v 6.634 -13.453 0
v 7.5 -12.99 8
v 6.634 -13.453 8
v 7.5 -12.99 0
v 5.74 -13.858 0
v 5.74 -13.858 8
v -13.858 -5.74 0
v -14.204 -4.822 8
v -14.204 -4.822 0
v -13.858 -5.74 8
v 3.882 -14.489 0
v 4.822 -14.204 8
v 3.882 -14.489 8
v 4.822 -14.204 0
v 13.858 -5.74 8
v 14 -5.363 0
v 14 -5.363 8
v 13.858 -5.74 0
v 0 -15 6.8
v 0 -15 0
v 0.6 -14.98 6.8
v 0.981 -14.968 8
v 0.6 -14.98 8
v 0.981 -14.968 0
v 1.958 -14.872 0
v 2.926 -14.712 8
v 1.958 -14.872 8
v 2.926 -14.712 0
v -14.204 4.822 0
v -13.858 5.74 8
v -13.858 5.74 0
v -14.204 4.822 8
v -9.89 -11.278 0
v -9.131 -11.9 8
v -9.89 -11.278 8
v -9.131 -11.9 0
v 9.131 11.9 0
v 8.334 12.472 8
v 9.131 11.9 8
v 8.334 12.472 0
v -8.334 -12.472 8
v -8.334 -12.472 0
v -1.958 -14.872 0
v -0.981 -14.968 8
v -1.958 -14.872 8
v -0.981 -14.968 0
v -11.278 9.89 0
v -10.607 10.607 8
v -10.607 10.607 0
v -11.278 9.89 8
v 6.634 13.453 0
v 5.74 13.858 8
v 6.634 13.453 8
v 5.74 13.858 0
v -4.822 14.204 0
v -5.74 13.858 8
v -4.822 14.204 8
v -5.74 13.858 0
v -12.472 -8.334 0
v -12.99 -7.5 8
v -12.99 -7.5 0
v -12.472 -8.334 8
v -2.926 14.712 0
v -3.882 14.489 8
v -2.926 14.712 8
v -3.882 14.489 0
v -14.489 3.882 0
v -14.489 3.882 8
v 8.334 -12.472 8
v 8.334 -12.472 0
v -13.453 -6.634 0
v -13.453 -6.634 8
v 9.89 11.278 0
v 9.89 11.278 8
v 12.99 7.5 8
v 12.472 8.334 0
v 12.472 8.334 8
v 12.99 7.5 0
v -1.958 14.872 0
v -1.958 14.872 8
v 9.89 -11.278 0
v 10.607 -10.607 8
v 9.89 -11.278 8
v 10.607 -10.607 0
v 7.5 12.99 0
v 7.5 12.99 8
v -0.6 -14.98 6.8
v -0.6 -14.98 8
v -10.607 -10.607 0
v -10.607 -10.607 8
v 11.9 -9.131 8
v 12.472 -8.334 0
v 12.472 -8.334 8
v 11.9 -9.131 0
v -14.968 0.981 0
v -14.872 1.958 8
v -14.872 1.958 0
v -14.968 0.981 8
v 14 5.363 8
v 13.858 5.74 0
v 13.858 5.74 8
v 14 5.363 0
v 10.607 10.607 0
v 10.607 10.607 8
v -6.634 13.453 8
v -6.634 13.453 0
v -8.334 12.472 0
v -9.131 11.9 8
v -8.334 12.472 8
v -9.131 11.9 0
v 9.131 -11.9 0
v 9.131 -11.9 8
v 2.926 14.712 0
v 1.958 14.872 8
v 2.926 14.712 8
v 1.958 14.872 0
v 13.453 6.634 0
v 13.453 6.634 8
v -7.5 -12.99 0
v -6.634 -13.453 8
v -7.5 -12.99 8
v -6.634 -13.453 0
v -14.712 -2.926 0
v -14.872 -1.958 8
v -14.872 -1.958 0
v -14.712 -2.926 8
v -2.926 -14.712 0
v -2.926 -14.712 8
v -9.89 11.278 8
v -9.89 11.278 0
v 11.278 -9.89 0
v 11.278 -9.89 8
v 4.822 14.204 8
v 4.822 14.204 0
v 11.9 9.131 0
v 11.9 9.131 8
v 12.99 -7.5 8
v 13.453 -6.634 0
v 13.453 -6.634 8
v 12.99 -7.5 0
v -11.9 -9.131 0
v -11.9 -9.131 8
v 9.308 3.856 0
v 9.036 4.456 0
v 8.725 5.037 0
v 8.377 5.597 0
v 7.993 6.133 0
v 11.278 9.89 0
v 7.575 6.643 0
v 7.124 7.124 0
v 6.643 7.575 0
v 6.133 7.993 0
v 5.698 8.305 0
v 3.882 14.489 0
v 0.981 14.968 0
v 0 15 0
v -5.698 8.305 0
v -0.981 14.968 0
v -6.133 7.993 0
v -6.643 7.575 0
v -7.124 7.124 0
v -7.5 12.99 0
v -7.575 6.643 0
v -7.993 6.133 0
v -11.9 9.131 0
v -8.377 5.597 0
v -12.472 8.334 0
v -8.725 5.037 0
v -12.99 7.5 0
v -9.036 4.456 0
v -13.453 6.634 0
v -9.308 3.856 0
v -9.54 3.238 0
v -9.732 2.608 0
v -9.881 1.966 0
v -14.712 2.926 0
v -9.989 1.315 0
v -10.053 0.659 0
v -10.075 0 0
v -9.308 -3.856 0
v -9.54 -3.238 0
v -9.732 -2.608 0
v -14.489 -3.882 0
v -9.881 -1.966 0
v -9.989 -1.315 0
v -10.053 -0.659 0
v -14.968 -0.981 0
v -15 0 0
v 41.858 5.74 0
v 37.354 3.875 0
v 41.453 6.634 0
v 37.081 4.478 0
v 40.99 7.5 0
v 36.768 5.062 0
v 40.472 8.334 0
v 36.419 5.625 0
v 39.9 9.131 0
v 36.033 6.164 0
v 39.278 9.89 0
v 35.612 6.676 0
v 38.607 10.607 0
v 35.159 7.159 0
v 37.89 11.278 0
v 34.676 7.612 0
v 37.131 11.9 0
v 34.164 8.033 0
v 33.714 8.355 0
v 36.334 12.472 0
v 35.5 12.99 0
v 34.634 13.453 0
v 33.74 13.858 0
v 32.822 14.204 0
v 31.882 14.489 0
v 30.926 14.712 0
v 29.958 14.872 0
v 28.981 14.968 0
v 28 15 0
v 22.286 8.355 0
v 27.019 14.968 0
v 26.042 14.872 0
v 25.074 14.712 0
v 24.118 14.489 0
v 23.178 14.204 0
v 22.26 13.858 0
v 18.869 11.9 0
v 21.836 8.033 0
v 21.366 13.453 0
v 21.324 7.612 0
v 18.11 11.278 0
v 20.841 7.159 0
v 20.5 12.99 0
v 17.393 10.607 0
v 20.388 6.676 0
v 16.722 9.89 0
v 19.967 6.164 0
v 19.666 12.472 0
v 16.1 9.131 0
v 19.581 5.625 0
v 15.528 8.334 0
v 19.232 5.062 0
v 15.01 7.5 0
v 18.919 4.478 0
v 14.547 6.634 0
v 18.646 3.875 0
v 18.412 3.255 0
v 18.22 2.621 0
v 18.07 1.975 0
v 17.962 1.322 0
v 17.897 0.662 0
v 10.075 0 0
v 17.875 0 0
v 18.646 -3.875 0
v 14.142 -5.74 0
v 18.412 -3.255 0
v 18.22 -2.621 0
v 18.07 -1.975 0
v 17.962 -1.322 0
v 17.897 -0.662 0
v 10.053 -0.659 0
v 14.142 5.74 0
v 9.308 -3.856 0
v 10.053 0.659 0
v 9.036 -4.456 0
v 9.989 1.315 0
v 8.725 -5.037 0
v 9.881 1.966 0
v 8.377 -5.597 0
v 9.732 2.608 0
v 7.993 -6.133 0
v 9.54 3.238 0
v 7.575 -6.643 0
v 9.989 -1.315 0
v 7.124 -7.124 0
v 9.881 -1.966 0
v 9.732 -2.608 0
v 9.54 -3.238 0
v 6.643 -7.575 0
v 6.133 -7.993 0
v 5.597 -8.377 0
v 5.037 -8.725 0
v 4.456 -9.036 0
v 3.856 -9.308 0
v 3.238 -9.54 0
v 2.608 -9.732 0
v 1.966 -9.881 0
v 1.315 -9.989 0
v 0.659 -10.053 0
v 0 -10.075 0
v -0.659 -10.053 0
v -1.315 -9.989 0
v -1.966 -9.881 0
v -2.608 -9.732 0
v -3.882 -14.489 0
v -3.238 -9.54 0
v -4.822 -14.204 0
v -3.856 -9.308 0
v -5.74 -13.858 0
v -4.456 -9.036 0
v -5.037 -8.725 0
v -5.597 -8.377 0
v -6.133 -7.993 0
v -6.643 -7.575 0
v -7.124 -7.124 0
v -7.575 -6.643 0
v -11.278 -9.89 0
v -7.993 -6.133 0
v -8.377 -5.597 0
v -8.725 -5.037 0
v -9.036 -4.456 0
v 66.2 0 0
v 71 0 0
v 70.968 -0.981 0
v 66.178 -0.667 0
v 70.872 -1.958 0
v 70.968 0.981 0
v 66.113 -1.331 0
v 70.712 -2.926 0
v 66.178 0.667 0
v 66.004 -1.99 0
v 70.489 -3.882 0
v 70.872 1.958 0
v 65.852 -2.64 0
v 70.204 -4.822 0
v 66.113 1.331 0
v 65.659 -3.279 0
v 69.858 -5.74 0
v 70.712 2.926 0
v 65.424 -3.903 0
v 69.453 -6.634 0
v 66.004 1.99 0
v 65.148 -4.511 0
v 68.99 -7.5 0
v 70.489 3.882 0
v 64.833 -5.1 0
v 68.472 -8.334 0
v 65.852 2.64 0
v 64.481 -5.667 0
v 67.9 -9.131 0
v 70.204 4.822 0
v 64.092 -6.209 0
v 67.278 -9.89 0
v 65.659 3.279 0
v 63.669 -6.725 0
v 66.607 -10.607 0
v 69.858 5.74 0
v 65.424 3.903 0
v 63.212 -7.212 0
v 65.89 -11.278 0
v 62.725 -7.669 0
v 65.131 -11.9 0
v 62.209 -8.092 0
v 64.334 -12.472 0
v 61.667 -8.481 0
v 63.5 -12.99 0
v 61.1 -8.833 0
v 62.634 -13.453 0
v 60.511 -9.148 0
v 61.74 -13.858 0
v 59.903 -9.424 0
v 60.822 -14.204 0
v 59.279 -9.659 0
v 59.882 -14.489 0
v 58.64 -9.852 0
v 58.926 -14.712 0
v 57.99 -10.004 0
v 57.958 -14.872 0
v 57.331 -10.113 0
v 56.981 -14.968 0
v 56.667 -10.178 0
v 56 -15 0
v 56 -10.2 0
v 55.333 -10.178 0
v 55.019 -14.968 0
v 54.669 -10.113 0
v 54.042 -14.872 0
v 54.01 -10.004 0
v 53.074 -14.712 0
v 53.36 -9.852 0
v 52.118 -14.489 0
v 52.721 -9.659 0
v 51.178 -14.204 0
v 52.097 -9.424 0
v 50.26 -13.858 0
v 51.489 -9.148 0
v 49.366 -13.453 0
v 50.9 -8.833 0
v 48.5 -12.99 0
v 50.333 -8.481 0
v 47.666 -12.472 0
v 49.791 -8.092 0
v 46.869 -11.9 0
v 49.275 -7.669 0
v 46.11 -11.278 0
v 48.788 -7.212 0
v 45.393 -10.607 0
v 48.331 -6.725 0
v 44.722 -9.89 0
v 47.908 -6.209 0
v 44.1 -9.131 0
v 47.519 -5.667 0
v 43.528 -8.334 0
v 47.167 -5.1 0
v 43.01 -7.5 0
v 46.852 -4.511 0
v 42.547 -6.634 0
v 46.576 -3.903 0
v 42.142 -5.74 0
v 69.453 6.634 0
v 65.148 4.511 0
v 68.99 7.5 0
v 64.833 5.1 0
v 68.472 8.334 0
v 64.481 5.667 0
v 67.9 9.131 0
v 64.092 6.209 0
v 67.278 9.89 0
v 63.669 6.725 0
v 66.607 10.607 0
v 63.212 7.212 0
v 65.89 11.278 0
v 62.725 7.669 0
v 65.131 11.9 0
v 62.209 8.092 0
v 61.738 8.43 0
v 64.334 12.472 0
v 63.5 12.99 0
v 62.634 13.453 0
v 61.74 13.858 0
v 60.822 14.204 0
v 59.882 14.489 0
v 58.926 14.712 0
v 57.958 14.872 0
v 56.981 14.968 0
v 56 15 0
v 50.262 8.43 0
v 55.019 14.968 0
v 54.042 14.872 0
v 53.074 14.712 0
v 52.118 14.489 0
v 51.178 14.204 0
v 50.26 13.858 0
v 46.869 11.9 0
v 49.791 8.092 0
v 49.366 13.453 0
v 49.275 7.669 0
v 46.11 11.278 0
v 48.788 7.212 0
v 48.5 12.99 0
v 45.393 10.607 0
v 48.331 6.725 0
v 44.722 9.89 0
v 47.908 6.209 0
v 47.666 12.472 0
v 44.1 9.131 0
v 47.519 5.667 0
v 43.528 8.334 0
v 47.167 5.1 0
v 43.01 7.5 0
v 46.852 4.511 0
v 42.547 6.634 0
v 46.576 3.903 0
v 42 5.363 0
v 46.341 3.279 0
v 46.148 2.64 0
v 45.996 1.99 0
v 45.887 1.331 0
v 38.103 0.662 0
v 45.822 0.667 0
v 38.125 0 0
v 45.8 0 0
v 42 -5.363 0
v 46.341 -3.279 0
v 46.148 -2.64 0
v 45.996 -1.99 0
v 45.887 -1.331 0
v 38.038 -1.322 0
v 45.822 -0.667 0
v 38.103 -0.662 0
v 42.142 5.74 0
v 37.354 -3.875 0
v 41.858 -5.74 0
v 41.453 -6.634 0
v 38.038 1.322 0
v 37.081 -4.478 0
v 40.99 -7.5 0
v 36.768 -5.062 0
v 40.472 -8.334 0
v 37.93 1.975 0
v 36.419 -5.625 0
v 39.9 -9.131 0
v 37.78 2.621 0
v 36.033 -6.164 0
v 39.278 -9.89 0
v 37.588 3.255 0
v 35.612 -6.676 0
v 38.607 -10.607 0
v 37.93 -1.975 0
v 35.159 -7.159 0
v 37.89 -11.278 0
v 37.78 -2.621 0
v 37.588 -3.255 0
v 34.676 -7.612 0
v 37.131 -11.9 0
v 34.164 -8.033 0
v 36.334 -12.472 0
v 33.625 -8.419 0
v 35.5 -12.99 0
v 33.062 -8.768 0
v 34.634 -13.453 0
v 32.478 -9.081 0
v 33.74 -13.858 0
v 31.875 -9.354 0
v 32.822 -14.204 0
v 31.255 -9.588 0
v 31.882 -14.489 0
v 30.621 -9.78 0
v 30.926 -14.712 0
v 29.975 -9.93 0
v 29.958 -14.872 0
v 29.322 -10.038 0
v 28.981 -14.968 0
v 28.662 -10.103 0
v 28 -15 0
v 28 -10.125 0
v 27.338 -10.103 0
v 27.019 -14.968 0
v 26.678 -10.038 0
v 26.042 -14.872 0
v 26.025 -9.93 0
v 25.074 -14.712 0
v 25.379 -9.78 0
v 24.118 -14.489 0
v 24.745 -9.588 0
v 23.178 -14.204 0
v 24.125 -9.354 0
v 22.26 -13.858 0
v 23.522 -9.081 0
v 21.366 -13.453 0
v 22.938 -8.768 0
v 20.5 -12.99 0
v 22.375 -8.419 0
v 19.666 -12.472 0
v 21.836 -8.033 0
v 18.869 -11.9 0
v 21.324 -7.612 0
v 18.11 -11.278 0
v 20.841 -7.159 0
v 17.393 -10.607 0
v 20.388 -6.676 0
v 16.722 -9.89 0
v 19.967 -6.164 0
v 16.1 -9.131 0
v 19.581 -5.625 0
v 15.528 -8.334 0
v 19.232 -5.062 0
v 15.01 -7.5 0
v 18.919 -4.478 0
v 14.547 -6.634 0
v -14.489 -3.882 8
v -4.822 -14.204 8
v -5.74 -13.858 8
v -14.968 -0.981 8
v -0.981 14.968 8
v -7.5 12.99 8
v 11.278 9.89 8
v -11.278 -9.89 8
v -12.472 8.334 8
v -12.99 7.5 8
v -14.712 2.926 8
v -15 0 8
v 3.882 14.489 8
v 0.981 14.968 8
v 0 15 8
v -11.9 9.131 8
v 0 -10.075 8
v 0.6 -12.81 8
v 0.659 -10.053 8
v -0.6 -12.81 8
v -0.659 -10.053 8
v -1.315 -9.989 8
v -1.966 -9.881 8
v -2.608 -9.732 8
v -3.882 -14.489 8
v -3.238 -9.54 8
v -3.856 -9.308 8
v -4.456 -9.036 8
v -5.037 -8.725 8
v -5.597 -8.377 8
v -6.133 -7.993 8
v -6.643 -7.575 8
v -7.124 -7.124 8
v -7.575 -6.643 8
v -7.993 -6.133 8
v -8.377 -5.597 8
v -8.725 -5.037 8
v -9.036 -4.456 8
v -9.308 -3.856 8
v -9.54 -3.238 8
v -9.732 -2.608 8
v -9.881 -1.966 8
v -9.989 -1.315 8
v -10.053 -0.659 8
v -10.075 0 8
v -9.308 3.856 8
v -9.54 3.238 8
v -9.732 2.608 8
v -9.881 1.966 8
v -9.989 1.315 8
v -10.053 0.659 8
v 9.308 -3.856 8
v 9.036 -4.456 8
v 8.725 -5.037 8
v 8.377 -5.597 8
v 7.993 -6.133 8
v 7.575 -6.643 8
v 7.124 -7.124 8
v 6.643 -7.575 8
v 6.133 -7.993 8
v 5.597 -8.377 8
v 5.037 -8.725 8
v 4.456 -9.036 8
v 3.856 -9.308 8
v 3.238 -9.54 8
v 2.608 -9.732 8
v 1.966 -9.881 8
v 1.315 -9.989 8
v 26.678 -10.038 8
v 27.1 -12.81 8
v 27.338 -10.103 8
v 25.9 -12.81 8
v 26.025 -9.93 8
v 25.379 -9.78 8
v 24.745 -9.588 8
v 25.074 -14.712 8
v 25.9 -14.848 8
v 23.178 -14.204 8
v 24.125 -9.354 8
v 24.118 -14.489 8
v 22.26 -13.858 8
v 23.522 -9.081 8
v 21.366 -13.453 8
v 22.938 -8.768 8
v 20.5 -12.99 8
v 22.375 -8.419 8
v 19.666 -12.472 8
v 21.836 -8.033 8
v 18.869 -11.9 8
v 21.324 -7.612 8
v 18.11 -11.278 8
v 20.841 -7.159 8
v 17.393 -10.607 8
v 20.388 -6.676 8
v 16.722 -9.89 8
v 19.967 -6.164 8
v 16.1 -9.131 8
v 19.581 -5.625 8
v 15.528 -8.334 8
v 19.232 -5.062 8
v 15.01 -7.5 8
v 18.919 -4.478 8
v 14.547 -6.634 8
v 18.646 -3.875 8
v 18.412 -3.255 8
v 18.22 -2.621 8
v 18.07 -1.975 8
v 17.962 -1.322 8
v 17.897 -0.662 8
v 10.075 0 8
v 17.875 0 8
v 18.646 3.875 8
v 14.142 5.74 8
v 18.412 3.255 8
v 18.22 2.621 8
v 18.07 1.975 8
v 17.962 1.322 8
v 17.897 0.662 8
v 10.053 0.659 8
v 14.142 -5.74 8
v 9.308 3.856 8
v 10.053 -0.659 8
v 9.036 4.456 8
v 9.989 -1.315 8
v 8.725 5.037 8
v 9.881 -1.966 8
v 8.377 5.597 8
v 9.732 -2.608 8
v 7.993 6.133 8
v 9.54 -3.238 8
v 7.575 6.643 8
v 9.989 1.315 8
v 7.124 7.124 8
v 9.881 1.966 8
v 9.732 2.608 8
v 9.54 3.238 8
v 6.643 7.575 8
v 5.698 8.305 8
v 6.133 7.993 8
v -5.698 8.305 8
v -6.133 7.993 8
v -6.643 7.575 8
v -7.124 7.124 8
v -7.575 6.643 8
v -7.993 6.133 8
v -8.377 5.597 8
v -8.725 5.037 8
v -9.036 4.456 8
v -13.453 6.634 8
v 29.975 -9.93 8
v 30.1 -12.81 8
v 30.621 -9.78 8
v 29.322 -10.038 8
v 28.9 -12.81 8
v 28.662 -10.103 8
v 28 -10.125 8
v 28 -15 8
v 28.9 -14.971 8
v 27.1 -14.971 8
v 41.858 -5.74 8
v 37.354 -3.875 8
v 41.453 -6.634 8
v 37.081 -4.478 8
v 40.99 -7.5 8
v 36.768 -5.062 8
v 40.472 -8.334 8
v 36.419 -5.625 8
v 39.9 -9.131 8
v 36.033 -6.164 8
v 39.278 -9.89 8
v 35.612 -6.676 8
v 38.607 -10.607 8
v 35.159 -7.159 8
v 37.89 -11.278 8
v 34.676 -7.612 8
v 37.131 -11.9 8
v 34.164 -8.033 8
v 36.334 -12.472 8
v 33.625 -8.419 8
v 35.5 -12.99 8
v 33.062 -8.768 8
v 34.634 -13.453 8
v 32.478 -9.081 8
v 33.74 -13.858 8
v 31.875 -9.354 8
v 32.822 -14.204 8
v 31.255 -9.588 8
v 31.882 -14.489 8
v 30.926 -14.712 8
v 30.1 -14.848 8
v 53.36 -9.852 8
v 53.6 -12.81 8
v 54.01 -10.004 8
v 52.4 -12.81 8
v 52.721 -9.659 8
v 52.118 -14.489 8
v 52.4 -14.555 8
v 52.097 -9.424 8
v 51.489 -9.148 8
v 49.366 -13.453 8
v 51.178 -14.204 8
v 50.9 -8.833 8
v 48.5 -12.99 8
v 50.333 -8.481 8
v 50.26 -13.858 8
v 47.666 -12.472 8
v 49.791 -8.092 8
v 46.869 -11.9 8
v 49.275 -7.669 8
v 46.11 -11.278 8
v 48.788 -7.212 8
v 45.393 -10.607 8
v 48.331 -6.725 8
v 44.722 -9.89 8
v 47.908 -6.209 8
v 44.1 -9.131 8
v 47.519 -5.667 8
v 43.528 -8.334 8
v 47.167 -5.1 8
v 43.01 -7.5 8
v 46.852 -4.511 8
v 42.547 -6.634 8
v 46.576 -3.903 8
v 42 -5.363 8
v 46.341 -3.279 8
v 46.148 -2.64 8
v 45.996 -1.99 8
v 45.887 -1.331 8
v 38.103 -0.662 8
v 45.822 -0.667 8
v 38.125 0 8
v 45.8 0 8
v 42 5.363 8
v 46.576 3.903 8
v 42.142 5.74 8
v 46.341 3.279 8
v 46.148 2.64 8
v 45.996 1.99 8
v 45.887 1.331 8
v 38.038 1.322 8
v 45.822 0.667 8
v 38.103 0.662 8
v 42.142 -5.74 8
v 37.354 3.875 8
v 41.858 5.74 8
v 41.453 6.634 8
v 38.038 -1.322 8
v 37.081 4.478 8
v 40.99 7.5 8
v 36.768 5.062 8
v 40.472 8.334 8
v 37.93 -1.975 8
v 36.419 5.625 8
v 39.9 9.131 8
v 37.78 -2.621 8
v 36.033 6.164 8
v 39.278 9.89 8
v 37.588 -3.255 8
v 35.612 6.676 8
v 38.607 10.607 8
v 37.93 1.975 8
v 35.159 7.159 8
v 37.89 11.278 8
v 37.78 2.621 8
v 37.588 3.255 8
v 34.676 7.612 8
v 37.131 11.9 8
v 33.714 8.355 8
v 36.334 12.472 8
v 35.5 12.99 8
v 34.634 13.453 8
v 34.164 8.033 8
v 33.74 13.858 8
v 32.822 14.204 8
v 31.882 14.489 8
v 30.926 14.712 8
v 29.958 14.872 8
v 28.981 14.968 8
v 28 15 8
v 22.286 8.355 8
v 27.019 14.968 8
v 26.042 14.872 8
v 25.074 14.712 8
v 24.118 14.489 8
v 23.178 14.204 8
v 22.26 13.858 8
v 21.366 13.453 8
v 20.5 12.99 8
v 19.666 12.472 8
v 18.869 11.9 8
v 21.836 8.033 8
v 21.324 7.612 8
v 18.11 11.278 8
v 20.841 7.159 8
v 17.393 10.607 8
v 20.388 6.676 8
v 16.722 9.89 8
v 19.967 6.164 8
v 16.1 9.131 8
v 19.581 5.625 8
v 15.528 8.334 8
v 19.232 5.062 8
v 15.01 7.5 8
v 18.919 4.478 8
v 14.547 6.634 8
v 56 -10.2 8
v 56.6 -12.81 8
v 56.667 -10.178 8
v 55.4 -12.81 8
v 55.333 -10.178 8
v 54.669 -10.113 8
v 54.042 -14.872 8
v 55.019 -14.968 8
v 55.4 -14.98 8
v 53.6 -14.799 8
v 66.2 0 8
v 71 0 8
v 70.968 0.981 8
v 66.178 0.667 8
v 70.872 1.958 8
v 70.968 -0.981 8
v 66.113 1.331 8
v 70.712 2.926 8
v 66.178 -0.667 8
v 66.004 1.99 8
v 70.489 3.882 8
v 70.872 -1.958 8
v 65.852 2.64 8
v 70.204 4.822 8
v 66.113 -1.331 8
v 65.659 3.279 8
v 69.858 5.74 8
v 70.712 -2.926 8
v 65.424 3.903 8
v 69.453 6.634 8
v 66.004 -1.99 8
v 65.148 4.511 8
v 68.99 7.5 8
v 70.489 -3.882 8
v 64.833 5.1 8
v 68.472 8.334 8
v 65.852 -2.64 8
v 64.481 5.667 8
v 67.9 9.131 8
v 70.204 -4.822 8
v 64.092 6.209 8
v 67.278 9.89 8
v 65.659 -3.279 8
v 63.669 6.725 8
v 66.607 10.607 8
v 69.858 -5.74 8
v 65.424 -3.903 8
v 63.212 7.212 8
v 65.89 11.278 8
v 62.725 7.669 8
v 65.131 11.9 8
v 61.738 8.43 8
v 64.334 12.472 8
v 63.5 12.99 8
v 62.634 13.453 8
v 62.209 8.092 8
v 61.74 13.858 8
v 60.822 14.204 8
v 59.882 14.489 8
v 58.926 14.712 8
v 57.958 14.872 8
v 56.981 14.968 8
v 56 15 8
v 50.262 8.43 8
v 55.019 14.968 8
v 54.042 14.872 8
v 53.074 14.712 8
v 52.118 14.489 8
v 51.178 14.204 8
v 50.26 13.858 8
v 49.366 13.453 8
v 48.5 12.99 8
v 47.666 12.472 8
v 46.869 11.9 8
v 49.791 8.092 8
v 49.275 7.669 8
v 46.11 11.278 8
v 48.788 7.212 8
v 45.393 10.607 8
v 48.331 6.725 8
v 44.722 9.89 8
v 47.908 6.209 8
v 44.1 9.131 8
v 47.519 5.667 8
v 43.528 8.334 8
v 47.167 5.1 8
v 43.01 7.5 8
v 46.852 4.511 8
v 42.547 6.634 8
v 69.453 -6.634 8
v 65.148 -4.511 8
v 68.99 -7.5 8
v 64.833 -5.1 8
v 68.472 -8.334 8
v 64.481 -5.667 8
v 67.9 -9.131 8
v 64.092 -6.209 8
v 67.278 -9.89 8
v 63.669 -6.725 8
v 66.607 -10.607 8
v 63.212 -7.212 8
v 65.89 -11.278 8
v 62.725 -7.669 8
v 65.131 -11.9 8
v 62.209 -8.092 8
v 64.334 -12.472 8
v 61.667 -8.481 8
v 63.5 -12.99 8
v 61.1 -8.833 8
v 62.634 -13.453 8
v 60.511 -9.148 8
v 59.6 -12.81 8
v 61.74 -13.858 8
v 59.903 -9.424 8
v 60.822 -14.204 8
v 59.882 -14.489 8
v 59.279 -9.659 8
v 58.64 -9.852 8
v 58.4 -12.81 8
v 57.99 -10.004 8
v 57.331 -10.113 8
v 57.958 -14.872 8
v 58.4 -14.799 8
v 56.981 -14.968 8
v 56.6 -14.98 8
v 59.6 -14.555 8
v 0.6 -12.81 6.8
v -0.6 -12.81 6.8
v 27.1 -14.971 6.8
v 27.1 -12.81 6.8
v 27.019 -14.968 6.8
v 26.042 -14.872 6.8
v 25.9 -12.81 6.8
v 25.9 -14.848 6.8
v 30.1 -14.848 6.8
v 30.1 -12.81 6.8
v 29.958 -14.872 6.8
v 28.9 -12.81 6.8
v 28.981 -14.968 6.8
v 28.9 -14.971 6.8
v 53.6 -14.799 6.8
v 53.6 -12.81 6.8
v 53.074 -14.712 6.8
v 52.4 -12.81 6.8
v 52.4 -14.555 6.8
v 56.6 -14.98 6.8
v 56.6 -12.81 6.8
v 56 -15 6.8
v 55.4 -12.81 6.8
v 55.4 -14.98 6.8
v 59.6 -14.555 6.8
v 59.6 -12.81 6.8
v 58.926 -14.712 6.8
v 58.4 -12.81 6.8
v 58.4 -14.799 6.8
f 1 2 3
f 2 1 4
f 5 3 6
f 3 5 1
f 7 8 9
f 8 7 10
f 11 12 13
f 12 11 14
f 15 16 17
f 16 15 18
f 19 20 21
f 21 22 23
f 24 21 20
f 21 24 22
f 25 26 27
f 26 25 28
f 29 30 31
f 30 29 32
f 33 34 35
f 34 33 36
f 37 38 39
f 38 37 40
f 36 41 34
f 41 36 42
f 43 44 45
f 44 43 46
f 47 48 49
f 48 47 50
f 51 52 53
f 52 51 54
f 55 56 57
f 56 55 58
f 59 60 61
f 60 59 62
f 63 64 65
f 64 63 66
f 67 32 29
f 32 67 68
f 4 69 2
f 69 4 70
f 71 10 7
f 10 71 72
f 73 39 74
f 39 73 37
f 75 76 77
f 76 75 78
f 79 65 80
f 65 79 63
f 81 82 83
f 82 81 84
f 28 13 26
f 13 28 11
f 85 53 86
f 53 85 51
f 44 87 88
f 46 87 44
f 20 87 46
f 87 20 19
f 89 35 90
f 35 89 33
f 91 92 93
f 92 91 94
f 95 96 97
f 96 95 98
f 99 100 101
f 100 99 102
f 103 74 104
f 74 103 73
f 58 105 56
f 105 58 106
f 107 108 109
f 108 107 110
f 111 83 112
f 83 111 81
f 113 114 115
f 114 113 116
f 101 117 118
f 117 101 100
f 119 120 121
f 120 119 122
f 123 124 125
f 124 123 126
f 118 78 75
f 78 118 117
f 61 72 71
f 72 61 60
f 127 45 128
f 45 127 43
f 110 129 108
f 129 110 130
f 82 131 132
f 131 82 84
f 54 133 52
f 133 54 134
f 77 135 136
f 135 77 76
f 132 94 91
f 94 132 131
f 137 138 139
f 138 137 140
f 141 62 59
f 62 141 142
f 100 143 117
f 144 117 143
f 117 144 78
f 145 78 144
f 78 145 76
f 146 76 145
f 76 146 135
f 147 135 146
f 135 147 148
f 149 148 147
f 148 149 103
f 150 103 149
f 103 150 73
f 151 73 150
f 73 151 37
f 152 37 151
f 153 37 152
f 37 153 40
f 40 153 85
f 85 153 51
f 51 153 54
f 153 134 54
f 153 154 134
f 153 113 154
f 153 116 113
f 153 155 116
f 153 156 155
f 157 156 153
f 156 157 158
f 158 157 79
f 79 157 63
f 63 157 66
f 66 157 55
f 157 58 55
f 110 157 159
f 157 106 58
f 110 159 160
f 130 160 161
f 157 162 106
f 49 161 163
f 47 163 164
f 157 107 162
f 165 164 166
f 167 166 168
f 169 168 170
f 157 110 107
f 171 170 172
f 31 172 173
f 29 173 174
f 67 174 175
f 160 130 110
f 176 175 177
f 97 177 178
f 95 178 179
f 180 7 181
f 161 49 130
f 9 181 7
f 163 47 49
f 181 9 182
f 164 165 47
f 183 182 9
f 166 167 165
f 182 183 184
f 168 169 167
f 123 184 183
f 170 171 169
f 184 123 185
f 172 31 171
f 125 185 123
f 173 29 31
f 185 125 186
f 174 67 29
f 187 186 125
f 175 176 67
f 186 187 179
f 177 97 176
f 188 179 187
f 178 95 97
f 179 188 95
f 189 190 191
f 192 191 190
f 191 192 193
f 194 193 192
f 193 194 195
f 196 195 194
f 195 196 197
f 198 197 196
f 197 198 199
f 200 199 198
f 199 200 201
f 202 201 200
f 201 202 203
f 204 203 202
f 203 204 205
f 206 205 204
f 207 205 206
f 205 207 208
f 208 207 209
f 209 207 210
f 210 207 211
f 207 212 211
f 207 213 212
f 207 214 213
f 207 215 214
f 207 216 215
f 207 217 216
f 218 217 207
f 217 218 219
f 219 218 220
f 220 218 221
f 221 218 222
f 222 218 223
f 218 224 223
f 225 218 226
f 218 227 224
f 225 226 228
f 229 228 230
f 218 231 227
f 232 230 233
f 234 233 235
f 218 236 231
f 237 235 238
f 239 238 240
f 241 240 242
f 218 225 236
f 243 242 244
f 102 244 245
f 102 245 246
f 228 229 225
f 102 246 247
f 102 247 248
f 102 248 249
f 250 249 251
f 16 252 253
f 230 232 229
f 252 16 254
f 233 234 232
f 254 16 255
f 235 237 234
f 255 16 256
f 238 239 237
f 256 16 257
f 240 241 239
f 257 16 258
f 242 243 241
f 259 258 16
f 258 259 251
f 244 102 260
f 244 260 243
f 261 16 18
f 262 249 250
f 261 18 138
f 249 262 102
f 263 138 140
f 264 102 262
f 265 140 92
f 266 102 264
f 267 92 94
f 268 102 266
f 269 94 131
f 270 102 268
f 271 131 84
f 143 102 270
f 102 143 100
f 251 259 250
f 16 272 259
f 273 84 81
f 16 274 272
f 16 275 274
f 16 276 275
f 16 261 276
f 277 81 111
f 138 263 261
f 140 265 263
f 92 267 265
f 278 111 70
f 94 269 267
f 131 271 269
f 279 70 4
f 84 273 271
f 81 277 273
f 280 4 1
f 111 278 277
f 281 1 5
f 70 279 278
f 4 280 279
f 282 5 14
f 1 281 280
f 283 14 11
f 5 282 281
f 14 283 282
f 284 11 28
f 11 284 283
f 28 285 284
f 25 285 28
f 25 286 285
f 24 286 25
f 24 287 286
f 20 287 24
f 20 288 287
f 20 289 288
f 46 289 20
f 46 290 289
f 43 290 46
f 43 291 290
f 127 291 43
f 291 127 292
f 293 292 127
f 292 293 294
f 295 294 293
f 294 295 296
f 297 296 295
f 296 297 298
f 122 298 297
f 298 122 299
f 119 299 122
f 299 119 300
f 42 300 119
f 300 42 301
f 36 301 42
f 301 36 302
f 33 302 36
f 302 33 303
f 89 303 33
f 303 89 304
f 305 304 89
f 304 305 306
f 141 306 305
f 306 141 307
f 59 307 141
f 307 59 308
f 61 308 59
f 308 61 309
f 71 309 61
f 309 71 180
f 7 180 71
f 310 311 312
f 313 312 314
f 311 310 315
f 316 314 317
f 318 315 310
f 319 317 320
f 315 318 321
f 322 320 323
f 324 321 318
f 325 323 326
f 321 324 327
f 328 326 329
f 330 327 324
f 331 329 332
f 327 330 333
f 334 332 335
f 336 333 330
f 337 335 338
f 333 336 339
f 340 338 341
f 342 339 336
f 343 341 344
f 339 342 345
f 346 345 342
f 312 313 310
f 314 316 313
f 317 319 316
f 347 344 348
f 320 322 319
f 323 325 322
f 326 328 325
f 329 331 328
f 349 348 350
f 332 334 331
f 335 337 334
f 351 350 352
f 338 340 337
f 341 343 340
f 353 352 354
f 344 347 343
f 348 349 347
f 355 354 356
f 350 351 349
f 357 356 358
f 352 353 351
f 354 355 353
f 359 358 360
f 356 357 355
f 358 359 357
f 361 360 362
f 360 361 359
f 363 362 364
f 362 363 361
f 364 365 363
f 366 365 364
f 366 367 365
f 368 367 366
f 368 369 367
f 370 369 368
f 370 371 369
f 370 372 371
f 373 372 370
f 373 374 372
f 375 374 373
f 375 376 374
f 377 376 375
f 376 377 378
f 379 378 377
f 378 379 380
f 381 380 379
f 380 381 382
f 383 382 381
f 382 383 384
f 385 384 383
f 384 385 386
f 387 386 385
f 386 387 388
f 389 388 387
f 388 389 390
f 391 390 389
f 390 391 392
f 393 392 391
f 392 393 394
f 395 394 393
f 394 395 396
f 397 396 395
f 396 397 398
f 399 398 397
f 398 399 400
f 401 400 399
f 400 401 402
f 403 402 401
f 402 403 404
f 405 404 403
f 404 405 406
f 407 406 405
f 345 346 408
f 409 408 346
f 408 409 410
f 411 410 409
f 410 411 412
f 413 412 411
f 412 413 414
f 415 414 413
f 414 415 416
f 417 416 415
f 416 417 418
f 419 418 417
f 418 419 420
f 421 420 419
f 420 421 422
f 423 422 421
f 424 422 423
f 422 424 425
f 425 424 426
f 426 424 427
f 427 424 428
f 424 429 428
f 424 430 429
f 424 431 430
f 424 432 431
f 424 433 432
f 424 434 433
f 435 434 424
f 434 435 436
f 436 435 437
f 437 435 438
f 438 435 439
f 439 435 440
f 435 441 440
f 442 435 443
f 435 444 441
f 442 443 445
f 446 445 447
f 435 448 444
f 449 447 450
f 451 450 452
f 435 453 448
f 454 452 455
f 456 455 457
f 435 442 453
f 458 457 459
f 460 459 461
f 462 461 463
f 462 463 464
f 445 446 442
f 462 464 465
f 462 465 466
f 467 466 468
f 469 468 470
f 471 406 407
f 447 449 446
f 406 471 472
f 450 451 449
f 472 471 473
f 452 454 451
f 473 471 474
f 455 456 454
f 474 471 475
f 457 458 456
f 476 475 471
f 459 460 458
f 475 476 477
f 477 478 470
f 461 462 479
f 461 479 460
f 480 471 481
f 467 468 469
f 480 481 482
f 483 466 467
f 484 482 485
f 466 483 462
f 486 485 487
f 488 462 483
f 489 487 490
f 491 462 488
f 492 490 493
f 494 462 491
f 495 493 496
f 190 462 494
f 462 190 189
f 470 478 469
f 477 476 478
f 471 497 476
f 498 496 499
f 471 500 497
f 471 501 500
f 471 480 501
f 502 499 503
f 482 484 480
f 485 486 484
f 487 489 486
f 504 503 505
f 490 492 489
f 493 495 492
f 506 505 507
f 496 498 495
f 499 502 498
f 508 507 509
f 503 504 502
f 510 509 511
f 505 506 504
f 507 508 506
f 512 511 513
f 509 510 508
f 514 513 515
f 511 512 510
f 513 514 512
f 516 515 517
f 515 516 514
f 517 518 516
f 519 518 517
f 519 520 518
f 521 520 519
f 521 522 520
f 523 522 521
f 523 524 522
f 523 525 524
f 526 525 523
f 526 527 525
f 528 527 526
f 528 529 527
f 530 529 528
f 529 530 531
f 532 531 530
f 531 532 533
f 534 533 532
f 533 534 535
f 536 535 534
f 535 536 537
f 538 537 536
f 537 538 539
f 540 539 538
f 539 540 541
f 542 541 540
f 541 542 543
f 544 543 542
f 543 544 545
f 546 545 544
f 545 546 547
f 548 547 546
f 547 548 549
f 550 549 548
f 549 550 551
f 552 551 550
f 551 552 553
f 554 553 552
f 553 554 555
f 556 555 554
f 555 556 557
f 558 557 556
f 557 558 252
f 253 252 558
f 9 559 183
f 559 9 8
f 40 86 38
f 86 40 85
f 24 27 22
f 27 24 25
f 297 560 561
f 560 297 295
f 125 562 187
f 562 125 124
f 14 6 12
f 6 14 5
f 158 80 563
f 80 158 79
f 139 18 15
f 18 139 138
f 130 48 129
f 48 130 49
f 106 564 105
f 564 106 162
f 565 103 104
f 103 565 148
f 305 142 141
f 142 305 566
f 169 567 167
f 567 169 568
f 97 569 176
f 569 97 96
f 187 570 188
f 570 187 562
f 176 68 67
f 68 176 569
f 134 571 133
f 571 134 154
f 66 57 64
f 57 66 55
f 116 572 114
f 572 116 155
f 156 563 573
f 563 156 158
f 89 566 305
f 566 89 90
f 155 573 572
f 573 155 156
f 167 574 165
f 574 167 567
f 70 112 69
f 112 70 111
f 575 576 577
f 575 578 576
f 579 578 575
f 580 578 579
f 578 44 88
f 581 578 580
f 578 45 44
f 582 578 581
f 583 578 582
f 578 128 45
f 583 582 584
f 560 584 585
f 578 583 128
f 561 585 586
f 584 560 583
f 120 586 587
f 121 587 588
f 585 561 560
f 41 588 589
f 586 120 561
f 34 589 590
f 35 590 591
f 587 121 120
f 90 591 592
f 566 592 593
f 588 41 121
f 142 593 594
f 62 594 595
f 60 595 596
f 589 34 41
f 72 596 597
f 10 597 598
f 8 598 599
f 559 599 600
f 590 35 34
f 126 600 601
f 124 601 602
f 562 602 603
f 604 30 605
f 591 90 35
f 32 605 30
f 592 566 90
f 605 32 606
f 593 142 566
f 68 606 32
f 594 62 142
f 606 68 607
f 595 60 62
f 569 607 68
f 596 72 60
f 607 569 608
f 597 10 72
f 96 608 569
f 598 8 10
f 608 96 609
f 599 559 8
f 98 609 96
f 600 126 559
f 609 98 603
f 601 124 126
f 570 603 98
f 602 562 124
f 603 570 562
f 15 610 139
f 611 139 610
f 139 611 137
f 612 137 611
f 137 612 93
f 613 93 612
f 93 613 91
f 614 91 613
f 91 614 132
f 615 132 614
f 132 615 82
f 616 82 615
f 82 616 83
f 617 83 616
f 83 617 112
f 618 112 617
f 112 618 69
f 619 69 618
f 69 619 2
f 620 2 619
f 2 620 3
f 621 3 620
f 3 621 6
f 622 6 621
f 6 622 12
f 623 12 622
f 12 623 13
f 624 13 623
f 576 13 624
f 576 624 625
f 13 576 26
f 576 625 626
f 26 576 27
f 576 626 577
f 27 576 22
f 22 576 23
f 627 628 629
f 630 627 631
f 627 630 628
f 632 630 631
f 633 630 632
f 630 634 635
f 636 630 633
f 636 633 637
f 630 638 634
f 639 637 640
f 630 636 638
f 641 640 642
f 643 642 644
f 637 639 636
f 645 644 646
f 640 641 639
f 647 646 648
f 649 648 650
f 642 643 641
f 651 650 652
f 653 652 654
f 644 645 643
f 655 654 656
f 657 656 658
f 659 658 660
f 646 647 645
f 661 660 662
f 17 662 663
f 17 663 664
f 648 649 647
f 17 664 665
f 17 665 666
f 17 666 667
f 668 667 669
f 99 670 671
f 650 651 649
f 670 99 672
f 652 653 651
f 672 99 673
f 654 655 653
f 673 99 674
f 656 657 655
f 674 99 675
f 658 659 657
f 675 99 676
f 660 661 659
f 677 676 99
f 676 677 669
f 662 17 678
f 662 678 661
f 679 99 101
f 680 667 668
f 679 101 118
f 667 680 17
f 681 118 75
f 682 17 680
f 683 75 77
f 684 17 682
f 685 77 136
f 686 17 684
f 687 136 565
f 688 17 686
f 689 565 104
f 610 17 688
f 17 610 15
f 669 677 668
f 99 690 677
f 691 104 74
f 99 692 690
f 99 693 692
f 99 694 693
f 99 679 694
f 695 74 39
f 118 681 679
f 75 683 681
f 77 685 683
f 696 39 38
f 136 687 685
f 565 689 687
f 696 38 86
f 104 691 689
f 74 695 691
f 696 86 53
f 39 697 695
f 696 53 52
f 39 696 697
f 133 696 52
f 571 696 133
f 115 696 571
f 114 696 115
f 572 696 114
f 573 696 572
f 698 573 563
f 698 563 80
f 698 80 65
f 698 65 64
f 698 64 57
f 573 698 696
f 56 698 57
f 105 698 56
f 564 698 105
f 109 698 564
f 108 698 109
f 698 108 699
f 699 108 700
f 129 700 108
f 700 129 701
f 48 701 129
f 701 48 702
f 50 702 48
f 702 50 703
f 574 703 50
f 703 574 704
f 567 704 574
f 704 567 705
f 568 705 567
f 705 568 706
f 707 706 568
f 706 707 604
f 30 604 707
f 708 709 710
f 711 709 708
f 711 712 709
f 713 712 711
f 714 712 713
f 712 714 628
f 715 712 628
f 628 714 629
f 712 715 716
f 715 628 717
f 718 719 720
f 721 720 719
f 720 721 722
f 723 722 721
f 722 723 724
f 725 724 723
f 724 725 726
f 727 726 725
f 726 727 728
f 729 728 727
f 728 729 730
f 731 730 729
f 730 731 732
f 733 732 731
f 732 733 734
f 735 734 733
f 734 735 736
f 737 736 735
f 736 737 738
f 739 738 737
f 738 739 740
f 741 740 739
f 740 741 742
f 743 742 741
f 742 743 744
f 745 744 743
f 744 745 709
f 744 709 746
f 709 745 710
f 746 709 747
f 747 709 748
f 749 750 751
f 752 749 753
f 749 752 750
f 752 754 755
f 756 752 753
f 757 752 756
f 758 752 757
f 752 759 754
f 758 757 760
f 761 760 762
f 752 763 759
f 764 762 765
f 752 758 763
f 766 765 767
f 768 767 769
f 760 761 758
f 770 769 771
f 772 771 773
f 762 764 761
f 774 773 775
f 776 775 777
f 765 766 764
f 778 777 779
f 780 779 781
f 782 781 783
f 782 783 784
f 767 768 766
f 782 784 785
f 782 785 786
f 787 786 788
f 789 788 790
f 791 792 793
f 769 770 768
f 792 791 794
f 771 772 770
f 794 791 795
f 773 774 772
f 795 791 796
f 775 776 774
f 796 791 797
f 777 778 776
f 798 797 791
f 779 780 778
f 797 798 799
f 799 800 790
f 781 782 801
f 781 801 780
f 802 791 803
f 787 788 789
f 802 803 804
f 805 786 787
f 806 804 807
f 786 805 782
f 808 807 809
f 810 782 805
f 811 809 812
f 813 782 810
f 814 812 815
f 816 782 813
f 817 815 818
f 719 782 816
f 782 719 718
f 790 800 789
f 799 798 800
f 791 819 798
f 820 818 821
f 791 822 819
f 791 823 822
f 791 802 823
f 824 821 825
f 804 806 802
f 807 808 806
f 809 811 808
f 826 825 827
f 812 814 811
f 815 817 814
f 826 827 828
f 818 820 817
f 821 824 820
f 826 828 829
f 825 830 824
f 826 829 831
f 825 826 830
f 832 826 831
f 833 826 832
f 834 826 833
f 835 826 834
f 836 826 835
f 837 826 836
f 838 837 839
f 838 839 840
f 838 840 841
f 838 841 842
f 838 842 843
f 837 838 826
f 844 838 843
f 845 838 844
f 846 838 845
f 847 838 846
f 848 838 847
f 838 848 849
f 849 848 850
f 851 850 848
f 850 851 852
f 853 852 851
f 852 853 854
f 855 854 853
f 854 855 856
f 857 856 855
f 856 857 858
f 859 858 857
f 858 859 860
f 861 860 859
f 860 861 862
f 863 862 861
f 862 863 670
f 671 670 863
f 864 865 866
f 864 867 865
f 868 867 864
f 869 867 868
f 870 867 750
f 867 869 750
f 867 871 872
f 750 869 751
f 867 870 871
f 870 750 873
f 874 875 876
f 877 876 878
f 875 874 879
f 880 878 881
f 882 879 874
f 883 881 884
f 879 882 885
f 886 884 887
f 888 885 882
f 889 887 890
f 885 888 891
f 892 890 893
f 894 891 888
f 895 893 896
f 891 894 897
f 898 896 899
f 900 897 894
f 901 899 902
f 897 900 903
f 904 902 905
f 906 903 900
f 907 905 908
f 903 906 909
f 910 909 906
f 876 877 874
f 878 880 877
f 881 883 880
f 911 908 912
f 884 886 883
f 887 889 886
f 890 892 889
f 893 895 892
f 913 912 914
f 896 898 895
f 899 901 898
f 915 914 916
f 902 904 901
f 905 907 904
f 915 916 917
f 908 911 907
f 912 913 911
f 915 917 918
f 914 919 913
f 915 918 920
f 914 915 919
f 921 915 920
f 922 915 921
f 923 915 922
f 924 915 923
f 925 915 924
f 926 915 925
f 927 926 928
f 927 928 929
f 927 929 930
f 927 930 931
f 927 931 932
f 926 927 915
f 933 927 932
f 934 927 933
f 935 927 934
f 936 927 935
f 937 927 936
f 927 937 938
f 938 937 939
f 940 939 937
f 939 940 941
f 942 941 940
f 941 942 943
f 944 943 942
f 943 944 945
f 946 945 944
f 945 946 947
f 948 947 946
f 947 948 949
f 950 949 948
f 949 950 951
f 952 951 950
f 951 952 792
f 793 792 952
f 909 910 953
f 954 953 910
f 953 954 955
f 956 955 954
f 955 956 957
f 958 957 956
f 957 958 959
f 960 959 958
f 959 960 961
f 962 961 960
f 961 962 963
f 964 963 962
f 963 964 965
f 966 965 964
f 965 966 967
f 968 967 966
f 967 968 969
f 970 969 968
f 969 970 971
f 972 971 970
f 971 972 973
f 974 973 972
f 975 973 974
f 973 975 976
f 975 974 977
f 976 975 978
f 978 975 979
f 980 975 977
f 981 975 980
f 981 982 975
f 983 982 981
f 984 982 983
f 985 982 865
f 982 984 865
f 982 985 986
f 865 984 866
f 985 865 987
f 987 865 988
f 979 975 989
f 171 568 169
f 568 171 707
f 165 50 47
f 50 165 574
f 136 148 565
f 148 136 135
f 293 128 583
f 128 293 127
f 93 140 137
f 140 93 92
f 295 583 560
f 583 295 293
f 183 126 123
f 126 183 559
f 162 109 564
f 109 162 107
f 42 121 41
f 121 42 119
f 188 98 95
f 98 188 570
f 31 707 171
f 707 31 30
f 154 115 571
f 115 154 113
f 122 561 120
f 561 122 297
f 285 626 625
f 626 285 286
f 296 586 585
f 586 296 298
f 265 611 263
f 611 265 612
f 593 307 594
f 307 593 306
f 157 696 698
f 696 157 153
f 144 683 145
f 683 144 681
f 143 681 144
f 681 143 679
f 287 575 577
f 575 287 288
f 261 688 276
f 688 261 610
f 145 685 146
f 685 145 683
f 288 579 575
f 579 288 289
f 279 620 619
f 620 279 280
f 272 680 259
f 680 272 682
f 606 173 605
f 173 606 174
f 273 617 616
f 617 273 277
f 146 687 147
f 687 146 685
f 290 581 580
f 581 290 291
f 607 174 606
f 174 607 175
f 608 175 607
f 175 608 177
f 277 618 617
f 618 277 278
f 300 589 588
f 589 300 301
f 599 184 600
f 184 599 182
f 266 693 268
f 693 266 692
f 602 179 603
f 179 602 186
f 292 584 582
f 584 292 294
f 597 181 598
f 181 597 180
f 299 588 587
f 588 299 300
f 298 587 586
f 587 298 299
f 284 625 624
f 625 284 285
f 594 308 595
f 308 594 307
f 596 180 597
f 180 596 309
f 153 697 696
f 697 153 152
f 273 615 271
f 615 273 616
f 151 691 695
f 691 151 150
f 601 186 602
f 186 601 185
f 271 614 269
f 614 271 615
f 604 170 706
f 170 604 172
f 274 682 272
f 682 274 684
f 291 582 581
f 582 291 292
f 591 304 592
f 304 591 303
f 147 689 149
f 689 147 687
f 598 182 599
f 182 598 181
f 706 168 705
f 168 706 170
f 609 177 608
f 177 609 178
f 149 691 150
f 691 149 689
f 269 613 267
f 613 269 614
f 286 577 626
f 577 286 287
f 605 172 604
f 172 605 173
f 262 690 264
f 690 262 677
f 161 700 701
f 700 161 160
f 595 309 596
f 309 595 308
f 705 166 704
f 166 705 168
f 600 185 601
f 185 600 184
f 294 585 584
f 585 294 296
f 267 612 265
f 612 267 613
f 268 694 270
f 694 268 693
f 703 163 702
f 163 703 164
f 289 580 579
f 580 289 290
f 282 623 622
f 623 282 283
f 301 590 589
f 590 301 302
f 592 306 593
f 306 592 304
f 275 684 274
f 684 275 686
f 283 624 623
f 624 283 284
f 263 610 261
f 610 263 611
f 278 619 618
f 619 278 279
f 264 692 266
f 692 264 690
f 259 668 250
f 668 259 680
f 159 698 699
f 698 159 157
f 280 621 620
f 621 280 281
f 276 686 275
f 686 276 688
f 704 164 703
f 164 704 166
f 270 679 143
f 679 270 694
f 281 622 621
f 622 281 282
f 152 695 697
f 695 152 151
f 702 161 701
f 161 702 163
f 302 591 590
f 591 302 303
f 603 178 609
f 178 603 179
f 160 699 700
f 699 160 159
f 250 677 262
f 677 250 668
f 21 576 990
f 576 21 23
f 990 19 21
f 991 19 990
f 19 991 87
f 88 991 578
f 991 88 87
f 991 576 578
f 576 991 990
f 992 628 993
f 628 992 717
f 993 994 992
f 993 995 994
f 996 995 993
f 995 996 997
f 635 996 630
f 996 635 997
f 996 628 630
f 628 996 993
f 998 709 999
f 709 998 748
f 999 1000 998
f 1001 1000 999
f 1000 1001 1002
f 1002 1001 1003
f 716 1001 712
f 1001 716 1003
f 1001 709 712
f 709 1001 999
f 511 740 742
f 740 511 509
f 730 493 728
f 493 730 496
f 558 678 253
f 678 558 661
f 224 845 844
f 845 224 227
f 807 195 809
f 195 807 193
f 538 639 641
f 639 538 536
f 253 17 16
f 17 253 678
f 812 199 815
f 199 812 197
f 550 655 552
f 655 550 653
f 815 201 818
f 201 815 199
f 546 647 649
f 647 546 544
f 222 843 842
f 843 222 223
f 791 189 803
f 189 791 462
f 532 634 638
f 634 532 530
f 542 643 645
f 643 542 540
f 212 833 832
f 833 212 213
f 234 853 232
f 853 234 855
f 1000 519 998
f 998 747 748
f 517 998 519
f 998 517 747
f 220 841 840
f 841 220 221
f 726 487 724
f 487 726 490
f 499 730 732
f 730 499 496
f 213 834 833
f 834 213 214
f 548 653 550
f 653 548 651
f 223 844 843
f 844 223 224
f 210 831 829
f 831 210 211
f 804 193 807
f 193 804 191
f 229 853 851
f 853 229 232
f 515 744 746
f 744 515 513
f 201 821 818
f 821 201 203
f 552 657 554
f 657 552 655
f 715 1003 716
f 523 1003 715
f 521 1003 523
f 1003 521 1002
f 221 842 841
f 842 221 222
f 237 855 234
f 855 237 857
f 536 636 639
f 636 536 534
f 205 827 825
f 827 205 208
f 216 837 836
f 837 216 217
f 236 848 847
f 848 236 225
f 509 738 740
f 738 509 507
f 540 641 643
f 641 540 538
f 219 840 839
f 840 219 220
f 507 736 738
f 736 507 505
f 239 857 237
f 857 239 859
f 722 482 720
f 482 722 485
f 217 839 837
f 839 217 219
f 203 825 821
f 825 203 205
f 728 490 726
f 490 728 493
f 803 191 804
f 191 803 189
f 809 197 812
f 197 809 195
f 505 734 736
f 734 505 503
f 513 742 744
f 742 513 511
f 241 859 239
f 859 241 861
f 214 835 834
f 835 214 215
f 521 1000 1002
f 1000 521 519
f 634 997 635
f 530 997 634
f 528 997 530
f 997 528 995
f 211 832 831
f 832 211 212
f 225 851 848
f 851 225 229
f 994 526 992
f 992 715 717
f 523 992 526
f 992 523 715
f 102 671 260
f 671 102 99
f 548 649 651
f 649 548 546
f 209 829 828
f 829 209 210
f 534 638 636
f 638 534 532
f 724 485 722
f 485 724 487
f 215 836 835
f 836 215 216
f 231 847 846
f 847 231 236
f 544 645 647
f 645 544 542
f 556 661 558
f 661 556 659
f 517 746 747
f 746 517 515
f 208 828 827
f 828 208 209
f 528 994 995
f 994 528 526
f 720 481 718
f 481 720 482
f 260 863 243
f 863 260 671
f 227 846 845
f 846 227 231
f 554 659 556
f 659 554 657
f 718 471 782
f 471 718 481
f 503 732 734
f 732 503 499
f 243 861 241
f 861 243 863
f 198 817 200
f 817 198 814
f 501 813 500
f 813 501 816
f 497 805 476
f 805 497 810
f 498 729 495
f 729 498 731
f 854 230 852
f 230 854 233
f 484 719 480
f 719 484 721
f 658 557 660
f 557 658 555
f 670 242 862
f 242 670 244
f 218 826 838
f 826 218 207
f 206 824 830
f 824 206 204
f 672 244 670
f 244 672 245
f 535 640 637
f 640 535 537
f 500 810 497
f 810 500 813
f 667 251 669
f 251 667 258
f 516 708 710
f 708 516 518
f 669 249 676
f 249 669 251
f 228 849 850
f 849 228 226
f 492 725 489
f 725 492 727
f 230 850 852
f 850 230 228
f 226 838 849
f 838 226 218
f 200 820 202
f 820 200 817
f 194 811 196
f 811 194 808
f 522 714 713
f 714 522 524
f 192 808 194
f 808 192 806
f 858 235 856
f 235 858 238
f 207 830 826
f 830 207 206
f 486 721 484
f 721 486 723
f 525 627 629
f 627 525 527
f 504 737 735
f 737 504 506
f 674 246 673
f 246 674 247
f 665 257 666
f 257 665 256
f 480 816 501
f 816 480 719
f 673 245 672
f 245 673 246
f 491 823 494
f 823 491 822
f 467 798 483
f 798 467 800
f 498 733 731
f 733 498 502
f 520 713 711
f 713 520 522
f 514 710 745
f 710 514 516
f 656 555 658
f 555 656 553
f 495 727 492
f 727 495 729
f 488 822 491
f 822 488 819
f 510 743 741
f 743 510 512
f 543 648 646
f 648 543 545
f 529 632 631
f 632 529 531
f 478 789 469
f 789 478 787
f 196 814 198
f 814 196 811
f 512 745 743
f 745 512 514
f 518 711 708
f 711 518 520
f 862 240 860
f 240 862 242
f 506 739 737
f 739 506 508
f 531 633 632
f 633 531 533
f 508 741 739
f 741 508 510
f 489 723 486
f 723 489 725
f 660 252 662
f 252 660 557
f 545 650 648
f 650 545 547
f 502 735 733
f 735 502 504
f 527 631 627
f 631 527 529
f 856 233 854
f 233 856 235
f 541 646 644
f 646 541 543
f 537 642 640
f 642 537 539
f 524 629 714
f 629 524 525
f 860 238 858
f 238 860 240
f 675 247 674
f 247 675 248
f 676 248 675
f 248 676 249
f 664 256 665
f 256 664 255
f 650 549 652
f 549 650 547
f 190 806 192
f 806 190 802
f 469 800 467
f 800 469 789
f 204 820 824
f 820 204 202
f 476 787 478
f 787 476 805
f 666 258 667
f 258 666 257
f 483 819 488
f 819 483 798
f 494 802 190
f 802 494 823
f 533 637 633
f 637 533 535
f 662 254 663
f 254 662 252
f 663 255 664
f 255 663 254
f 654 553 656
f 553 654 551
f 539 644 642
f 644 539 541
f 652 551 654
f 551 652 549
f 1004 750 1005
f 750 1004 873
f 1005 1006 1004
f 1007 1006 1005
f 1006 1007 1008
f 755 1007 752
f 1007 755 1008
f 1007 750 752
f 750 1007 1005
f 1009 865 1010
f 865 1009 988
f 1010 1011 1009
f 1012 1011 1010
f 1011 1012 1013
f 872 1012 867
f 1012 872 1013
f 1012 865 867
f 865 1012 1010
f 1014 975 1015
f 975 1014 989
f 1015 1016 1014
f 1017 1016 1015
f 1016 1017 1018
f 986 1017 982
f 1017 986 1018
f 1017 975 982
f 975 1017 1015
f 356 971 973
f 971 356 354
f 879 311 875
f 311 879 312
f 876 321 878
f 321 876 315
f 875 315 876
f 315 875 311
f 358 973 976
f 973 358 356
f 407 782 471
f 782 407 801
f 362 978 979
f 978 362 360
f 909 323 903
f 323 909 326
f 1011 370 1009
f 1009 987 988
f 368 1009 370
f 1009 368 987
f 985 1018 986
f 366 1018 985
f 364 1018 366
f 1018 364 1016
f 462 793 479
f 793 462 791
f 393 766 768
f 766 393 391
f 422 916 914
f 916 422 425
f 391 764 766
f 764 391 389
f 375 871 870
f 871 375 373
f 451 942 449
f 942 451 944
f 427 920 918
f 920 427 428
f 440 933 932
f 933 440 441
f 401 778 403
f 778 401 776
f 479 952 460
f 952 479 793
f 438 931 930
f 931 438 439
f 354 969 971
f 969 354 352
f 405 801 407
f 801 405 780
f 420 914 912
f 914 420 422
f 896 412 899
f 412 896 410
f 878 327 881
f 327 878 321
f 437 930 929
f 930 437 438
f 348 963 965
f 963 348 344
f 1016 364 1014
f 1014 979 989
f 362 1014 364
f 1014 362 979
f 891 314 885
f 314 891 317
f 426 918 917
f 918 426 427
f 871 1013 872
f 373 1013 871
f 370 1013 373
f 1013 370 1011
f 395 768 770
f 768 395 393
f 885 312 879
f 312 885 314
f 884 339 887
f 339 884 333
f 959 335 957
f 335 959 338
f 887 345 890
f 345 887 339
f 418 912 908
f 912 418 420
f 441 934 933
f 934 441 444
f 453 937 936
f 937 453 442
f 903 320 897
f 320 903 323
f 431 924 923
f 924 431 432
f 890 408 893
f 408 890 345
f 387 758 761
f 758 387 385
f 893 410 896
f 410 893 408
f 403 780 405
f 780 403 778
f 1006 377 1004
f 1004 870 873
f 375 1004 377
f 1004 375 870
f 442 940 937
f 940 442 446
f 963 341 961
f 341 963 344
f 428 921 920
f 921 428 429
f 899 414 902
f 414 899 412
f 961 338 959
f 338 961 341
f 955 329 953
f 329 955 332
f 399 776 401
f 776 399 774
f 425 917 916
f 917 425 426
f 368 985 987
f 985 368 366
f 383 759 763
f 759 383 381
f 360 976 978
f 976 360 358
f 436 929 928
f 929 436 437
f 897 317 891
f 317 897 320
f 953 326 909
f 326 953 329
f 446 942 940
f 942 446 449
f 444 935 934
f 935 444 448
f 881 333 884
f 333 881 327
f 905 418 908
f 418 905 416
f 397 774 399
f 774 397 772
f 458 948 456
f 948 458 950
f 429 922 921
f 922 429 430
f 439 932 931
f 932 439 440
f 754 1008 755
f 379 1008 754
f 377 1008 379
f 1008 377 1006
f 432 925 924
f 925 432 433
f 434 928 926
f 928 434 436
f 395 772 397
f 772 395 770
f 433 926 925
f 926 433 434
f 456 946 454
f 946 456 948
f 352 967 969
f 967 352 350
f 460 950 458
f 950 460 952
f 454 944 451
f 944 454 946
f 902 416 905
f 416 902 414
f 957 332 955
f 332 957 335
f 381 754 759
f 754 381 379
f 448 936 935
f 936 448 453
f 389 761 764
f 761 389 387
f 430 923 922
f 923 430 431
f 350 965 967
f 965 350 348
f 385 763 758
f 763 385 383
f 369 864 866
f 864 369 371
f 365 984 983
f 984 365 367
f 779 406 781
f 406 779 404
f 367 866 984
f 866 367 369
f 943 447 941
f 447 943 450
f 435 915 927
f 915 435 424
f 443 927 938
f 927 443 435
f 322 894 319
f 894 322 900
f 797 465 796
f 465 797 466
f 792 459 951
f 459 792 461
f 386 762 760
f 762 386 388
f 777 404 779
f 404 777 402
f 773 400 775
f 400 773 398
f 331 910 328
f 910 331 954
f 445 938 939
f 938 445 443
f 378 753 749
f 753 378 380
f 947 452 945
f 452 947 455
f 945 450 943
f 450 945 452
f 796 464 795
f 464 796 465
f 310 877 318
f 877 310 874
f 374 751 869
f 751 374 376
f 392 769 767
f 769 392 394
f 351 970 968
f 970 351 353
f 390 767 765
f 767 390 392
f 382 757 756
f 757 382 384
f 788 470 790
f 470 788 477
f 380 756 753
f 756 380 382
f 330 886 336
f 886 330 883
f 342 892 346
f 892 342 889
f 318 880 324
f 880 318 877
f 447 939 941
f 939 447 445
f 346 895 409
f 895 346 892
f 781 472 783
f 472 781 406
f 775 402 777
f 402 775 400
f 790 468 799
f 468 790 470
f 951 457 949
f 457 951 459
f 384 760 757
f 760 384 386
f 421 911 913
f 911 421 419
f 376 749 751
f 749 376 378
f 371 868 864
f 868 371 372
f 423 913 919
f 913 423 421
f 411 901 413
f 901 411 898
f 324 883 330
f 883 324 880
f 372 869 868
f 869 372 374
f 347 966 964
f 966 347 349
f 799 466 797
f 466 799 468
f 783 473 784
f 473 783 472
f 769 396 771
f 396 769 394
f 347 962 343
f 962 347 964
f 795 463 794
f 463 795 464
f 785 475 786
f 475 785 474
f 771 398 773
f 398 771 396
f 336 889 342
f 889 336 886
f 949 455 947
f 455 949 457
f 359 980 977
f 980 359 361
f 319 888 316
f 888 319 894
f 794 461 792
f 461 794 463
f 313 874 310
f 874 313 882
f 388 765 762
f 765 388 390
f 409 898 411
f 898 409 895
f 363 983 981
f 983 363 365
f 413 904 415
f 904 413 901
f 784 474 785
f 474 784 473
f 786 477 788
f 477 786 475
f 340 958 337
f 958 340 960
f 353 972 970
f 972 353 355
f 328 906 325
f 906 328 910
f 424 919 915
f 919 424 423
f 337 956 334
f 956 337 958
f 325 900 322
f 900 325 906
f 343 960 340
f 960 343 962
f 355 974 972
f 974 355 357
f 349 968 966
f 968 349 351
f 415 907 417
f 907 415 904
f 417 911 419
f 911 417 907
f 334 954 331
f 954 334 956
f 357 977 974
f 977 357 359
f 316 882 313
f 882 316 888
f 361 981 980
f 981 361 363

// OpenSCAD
// Fit gauge for the scope's D-keyed rod (20 mm round, 18.23 mm flat-to-curve)
// Three bores marked by notches: 1 = tightest (0.15 mm), 2 = 0.25 mm, 3 = loosest (0.40 mm).
// Tell me which one slides
// smoothly with no rotation slop and I'll use that clearance in the rod clamp.
rod_d    = 20.0;
flat_to_curve = 18.23;
clears   = [0.15, 0.25, 0.40];   // diametral clearance per bore
t        = 8;
od       = 30;
$fn = 96; eps = 0.01;

module d_bore(c) {
  intersection() {
    circle(d = rod_d + c);
    translate([-(rod_d + c)/2 - 1, -(rod_d + c)/2 - 1]) square([rod_d + c + 2, (flat_to_curve - rod_d/2 + c/2) + (rod_d + c)/2 + 1]);
  }
}
for (i = [0 : len(clears) - 1]) translate([i*(od - 2), 0, 0]) difference() {
  cylinder(d = od, h = t);
  translate([0, 0, -eps]) linear_extrude(t + 2*eps) d_bore(clears[i]);
  for (n = [0 : i]) translate([-3*i/2 + 3*n - 0.6, -od/2 - eps, t - 1.2]) cube([1.2, 2.2, 1.2 + eps]);
}
